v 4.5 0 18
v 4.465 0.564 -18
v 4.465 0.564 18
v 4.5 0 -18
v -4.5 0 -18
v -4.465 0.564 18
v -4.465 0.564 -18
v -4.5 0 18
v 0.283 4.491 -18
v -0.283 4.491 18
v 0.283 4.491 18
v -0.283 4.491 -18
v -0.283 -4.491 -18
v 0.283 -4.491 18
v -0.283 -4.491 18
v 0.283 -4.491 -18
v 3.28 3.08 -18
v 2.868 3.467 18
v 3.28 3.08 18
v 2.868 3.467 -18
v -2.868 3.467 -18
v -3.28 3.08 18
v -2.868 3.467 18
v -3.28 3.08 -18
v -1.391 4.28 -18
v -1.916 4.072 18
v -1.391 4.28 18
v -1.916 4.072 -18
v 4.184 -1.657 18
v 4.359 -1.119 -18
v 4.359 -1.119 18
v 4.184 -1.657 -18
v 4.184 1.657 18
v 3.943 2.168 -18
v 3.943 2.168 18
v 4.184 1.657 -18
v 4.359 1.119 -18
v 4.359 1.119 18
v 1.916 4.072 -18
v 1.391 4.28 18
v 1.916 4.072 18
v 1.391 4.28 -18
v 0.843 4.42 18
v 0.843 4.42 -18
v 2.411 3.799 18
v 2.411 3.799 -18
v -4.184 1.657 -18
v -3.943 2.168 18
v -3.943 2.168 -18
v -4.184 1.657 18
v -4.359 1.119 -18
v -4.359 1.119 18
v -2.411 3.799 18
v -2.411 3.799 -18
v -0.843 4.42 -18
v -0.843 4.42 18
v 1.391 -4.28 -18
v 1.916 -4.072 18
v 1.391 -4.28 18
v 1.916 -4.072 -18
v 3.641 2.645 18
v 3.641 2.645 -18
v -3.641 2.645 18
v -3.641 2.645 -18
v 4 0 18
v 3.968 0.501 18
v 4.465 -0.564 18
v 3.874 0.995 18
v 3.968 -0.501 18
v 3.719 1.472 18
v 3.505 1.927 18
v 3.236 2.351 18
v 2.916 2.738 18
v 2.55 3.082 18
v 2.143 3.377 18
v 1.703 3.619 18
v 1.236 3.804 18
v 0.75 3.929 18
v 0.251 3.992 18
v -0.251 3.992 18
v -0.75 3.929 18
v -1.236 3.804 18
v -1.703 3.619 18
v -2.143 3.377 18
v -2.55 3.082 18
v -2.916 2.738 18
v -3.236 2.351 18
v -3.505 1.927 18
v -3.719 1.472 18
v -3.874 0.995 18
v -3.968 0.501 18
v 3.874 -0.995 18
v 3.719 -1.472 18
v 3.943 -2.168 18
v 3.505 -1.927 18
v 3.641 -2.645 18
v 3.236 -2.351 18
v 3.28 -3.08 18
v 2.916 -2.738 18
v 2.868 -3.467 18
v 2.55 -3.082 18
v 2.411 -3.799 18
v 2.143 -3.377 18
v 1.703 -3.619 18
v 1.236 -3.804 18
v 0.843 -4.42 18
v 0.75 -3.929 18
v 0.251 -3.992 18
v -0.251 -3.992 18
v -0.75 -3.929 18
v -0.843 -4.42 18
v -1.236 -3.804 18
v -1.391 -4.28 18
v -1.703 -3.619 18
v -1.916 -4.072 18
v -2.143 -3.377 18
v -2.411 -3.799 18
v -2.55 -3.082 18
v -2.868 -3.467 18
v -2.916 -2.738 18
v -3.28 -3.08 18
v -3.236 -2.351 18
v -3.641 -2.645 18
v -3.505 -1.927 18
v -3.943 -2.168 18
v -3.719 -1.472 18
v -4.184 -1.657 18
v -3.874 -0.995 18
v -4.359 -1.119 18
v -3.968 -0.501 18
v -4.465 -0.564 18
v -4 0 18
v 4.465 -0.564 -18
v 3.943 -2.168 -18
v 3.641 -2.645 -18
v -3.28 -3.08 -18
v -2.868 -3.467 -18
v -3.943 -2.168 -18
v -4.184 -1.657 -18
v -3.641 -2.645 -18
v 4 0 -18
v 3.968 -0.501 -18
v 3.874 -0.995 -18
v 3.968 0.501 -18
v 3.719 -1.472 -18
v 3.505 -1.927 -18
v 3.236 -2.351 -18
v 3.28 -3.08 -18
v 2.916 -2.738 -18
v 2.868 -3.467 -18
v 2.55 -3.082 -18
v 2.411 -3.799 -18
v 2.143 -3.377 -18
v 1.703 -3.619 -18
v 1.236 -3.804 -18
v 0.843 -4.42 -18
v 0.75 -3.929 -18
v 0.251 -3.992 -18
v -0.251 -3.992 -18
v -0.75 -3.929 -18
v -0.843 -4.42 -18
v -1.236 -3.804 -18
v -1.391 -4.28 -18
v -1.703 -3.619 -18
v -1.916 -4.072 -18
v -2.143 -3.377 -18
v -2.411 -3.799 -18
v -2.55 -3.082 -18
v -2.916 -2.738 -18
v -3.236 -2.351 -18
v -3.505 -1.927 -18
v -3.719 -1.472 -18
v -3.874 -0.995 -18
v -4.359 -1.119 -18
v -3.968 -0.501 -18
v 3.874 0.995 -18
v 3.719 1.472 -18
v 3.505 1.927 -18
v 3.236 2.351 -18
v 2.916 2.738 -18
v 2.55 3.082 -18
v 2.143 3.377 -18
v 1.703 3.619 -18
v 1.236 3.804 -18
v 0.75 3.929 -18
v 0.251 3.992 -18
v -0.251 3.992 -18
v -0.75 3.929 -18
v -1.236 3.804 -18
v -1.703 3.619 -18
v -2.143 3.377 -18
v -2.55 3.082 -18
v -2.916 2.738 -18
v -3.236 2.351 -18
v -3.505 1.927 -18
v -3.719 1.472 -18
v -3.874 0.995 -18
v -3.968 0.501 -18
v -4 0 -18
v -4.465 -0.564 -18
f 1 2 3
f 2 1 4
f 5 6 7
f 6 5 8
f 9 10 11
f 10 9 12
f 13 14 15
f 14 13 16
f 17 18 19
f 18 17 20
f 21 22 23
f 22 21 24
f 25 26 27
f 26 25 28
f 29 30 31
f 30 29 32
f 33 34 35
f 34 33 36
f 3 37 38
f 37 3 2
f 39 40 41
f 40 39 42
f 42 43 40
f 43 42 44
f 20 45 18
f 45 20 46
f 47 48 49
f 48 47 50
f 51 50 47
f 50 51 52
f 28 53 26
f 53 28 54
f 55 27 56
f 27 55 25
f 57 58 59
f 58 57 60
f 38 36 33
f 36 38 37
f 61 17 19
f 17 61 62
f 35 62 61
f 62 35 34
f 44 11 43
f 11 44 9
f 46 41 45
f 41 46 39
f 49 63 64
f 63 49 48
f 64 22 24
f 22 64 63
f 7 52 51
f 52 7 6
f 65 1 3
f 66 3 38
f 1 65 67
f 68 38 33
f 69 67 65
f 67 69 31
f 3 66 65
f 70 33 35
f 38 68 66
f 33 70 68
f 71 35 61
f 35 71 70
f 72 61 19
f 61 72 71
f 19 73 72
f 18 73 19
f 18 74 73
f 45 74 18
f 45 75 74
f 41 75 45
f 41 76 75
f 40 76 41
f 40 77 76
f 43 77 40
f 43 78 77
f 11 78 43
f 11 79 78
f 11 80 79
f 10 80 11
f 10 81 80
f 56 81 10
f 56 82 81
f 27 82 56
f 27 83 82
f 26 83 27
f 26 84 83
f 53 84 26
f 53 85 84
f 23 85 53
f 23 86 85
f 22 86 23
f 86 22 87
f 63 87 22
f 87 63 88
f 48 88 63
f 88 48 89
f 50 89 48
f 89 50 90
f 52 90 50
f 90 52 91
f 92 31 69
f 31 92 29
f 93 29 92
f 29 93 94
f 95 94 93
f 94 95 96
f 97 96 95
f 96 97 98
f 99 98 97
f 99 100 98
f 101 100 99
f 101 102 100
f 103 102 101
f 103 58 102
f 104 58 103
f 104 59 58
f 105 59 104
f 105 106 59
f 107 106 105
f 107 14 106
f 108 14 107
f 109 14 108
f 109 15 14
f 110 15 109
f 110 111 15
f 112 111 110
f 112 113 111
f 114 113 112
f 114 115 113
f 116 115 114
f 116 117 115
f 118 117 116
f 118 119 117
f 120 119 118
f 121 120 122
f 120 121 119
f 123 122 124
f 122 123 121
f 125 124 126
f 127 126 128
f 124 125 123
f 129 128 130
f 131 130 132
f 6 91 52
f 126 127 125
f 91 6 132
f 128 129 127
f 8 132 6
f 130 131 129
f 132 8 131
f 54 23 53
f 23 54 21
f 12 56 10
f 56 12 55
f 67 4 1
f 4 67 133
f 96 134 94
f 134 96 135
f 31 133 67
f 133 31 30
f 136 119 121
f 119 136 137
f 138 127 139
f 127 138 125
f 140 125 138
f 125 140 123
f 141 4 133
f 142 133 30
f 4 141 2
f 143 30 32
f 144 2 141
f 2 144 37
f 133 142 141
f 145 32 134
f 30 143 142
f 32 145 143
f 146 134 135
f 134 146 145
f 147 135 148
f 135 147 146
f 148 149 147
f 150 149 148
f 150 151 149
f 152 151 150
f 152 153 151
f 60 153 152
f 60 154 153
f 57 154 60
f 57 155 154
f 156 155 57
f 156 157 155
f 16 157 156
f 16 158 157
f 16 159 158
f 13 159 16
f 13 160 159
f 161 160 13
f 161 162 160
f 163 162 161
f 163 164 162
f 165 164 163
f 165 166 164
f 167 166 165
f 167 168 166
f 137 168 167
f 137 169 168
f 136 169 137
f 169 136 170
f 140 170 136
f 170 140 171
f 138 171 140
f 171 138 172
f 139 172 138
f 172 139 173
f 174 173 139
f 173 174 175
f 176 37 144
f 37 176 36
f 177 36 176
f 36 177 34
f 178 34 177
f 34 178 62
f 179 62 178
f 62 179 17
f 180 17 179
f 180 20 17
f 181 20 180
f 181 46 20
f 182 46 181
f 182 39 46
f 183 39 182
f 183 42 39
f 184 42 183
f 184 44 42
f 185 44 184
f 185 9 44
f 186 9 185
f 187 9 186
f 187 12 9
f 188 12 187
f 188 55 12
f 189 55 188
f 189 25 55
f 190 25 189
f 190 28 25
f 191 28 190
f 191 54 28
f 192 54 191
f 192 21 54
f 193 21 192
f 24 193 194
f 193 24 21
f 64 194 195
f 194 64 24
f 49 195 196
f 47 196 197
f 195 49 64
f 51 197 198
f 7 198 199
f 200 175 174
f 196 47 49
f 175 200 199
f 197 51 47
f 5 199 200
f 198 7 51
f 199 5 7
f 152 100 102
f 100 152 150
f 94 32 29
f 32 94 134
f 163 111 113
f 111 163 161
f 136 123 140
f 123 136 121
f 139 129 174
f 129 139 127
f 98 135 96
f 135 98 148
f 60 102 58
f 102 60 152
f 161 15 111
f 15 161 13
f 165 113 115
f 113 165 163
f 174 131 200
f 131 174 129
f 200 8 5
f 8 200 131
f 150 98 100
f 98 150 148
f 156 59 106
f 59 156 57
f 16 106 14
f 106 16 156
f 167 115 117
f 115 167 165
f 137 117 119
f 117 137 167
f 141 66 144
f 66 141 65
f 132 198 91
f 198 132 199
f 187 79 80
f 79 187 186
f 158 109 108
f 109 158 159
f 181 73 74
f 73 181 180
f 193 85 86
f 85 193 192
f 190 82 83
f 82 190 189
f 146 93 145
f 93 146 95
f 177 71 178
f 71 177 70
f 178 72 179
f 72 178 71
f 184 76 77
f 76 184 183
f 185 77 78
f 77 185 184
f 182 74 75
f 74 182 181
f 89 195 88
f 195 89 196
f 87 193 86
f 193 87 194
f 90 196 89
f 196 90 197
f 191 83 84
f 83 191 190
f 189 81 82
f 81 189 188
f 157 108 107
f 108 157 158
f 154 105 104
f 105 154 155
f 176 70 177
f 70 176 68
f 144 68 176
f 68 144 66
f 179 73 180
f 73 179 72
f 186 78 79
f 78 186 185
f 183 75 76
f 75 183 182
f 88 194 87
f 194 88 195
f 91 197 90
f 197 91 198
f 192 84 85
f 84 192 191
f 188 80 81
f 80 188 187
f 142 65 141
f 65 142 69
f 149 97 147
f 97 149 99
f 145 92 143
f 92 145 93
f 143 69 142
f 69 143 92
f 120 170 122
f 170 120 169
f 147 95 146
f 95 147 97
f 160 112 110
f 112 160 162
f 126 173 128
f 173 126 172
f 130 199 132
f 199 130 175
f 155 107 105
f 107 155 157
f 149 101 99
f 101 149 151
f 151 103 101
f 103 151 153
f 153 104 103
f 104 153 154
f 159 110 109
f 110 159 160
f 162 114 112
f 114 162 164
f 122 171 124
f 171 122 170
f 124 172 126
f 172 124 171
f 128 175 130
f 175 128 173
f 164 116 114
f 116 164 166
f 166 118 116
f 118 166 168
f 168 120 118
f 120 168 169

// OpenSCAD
$fn = 50;


difference() {
	union() {
		translate(v = [0, 0, -18.0000000000]) {
			cylinder(h = 36, r = 4.5000000000);
		}
	}
	union() {
		translate(v = [0, 0, -100.0000000000]) {
			cylinder(h = 200, r = 4);
		}
	}
}
